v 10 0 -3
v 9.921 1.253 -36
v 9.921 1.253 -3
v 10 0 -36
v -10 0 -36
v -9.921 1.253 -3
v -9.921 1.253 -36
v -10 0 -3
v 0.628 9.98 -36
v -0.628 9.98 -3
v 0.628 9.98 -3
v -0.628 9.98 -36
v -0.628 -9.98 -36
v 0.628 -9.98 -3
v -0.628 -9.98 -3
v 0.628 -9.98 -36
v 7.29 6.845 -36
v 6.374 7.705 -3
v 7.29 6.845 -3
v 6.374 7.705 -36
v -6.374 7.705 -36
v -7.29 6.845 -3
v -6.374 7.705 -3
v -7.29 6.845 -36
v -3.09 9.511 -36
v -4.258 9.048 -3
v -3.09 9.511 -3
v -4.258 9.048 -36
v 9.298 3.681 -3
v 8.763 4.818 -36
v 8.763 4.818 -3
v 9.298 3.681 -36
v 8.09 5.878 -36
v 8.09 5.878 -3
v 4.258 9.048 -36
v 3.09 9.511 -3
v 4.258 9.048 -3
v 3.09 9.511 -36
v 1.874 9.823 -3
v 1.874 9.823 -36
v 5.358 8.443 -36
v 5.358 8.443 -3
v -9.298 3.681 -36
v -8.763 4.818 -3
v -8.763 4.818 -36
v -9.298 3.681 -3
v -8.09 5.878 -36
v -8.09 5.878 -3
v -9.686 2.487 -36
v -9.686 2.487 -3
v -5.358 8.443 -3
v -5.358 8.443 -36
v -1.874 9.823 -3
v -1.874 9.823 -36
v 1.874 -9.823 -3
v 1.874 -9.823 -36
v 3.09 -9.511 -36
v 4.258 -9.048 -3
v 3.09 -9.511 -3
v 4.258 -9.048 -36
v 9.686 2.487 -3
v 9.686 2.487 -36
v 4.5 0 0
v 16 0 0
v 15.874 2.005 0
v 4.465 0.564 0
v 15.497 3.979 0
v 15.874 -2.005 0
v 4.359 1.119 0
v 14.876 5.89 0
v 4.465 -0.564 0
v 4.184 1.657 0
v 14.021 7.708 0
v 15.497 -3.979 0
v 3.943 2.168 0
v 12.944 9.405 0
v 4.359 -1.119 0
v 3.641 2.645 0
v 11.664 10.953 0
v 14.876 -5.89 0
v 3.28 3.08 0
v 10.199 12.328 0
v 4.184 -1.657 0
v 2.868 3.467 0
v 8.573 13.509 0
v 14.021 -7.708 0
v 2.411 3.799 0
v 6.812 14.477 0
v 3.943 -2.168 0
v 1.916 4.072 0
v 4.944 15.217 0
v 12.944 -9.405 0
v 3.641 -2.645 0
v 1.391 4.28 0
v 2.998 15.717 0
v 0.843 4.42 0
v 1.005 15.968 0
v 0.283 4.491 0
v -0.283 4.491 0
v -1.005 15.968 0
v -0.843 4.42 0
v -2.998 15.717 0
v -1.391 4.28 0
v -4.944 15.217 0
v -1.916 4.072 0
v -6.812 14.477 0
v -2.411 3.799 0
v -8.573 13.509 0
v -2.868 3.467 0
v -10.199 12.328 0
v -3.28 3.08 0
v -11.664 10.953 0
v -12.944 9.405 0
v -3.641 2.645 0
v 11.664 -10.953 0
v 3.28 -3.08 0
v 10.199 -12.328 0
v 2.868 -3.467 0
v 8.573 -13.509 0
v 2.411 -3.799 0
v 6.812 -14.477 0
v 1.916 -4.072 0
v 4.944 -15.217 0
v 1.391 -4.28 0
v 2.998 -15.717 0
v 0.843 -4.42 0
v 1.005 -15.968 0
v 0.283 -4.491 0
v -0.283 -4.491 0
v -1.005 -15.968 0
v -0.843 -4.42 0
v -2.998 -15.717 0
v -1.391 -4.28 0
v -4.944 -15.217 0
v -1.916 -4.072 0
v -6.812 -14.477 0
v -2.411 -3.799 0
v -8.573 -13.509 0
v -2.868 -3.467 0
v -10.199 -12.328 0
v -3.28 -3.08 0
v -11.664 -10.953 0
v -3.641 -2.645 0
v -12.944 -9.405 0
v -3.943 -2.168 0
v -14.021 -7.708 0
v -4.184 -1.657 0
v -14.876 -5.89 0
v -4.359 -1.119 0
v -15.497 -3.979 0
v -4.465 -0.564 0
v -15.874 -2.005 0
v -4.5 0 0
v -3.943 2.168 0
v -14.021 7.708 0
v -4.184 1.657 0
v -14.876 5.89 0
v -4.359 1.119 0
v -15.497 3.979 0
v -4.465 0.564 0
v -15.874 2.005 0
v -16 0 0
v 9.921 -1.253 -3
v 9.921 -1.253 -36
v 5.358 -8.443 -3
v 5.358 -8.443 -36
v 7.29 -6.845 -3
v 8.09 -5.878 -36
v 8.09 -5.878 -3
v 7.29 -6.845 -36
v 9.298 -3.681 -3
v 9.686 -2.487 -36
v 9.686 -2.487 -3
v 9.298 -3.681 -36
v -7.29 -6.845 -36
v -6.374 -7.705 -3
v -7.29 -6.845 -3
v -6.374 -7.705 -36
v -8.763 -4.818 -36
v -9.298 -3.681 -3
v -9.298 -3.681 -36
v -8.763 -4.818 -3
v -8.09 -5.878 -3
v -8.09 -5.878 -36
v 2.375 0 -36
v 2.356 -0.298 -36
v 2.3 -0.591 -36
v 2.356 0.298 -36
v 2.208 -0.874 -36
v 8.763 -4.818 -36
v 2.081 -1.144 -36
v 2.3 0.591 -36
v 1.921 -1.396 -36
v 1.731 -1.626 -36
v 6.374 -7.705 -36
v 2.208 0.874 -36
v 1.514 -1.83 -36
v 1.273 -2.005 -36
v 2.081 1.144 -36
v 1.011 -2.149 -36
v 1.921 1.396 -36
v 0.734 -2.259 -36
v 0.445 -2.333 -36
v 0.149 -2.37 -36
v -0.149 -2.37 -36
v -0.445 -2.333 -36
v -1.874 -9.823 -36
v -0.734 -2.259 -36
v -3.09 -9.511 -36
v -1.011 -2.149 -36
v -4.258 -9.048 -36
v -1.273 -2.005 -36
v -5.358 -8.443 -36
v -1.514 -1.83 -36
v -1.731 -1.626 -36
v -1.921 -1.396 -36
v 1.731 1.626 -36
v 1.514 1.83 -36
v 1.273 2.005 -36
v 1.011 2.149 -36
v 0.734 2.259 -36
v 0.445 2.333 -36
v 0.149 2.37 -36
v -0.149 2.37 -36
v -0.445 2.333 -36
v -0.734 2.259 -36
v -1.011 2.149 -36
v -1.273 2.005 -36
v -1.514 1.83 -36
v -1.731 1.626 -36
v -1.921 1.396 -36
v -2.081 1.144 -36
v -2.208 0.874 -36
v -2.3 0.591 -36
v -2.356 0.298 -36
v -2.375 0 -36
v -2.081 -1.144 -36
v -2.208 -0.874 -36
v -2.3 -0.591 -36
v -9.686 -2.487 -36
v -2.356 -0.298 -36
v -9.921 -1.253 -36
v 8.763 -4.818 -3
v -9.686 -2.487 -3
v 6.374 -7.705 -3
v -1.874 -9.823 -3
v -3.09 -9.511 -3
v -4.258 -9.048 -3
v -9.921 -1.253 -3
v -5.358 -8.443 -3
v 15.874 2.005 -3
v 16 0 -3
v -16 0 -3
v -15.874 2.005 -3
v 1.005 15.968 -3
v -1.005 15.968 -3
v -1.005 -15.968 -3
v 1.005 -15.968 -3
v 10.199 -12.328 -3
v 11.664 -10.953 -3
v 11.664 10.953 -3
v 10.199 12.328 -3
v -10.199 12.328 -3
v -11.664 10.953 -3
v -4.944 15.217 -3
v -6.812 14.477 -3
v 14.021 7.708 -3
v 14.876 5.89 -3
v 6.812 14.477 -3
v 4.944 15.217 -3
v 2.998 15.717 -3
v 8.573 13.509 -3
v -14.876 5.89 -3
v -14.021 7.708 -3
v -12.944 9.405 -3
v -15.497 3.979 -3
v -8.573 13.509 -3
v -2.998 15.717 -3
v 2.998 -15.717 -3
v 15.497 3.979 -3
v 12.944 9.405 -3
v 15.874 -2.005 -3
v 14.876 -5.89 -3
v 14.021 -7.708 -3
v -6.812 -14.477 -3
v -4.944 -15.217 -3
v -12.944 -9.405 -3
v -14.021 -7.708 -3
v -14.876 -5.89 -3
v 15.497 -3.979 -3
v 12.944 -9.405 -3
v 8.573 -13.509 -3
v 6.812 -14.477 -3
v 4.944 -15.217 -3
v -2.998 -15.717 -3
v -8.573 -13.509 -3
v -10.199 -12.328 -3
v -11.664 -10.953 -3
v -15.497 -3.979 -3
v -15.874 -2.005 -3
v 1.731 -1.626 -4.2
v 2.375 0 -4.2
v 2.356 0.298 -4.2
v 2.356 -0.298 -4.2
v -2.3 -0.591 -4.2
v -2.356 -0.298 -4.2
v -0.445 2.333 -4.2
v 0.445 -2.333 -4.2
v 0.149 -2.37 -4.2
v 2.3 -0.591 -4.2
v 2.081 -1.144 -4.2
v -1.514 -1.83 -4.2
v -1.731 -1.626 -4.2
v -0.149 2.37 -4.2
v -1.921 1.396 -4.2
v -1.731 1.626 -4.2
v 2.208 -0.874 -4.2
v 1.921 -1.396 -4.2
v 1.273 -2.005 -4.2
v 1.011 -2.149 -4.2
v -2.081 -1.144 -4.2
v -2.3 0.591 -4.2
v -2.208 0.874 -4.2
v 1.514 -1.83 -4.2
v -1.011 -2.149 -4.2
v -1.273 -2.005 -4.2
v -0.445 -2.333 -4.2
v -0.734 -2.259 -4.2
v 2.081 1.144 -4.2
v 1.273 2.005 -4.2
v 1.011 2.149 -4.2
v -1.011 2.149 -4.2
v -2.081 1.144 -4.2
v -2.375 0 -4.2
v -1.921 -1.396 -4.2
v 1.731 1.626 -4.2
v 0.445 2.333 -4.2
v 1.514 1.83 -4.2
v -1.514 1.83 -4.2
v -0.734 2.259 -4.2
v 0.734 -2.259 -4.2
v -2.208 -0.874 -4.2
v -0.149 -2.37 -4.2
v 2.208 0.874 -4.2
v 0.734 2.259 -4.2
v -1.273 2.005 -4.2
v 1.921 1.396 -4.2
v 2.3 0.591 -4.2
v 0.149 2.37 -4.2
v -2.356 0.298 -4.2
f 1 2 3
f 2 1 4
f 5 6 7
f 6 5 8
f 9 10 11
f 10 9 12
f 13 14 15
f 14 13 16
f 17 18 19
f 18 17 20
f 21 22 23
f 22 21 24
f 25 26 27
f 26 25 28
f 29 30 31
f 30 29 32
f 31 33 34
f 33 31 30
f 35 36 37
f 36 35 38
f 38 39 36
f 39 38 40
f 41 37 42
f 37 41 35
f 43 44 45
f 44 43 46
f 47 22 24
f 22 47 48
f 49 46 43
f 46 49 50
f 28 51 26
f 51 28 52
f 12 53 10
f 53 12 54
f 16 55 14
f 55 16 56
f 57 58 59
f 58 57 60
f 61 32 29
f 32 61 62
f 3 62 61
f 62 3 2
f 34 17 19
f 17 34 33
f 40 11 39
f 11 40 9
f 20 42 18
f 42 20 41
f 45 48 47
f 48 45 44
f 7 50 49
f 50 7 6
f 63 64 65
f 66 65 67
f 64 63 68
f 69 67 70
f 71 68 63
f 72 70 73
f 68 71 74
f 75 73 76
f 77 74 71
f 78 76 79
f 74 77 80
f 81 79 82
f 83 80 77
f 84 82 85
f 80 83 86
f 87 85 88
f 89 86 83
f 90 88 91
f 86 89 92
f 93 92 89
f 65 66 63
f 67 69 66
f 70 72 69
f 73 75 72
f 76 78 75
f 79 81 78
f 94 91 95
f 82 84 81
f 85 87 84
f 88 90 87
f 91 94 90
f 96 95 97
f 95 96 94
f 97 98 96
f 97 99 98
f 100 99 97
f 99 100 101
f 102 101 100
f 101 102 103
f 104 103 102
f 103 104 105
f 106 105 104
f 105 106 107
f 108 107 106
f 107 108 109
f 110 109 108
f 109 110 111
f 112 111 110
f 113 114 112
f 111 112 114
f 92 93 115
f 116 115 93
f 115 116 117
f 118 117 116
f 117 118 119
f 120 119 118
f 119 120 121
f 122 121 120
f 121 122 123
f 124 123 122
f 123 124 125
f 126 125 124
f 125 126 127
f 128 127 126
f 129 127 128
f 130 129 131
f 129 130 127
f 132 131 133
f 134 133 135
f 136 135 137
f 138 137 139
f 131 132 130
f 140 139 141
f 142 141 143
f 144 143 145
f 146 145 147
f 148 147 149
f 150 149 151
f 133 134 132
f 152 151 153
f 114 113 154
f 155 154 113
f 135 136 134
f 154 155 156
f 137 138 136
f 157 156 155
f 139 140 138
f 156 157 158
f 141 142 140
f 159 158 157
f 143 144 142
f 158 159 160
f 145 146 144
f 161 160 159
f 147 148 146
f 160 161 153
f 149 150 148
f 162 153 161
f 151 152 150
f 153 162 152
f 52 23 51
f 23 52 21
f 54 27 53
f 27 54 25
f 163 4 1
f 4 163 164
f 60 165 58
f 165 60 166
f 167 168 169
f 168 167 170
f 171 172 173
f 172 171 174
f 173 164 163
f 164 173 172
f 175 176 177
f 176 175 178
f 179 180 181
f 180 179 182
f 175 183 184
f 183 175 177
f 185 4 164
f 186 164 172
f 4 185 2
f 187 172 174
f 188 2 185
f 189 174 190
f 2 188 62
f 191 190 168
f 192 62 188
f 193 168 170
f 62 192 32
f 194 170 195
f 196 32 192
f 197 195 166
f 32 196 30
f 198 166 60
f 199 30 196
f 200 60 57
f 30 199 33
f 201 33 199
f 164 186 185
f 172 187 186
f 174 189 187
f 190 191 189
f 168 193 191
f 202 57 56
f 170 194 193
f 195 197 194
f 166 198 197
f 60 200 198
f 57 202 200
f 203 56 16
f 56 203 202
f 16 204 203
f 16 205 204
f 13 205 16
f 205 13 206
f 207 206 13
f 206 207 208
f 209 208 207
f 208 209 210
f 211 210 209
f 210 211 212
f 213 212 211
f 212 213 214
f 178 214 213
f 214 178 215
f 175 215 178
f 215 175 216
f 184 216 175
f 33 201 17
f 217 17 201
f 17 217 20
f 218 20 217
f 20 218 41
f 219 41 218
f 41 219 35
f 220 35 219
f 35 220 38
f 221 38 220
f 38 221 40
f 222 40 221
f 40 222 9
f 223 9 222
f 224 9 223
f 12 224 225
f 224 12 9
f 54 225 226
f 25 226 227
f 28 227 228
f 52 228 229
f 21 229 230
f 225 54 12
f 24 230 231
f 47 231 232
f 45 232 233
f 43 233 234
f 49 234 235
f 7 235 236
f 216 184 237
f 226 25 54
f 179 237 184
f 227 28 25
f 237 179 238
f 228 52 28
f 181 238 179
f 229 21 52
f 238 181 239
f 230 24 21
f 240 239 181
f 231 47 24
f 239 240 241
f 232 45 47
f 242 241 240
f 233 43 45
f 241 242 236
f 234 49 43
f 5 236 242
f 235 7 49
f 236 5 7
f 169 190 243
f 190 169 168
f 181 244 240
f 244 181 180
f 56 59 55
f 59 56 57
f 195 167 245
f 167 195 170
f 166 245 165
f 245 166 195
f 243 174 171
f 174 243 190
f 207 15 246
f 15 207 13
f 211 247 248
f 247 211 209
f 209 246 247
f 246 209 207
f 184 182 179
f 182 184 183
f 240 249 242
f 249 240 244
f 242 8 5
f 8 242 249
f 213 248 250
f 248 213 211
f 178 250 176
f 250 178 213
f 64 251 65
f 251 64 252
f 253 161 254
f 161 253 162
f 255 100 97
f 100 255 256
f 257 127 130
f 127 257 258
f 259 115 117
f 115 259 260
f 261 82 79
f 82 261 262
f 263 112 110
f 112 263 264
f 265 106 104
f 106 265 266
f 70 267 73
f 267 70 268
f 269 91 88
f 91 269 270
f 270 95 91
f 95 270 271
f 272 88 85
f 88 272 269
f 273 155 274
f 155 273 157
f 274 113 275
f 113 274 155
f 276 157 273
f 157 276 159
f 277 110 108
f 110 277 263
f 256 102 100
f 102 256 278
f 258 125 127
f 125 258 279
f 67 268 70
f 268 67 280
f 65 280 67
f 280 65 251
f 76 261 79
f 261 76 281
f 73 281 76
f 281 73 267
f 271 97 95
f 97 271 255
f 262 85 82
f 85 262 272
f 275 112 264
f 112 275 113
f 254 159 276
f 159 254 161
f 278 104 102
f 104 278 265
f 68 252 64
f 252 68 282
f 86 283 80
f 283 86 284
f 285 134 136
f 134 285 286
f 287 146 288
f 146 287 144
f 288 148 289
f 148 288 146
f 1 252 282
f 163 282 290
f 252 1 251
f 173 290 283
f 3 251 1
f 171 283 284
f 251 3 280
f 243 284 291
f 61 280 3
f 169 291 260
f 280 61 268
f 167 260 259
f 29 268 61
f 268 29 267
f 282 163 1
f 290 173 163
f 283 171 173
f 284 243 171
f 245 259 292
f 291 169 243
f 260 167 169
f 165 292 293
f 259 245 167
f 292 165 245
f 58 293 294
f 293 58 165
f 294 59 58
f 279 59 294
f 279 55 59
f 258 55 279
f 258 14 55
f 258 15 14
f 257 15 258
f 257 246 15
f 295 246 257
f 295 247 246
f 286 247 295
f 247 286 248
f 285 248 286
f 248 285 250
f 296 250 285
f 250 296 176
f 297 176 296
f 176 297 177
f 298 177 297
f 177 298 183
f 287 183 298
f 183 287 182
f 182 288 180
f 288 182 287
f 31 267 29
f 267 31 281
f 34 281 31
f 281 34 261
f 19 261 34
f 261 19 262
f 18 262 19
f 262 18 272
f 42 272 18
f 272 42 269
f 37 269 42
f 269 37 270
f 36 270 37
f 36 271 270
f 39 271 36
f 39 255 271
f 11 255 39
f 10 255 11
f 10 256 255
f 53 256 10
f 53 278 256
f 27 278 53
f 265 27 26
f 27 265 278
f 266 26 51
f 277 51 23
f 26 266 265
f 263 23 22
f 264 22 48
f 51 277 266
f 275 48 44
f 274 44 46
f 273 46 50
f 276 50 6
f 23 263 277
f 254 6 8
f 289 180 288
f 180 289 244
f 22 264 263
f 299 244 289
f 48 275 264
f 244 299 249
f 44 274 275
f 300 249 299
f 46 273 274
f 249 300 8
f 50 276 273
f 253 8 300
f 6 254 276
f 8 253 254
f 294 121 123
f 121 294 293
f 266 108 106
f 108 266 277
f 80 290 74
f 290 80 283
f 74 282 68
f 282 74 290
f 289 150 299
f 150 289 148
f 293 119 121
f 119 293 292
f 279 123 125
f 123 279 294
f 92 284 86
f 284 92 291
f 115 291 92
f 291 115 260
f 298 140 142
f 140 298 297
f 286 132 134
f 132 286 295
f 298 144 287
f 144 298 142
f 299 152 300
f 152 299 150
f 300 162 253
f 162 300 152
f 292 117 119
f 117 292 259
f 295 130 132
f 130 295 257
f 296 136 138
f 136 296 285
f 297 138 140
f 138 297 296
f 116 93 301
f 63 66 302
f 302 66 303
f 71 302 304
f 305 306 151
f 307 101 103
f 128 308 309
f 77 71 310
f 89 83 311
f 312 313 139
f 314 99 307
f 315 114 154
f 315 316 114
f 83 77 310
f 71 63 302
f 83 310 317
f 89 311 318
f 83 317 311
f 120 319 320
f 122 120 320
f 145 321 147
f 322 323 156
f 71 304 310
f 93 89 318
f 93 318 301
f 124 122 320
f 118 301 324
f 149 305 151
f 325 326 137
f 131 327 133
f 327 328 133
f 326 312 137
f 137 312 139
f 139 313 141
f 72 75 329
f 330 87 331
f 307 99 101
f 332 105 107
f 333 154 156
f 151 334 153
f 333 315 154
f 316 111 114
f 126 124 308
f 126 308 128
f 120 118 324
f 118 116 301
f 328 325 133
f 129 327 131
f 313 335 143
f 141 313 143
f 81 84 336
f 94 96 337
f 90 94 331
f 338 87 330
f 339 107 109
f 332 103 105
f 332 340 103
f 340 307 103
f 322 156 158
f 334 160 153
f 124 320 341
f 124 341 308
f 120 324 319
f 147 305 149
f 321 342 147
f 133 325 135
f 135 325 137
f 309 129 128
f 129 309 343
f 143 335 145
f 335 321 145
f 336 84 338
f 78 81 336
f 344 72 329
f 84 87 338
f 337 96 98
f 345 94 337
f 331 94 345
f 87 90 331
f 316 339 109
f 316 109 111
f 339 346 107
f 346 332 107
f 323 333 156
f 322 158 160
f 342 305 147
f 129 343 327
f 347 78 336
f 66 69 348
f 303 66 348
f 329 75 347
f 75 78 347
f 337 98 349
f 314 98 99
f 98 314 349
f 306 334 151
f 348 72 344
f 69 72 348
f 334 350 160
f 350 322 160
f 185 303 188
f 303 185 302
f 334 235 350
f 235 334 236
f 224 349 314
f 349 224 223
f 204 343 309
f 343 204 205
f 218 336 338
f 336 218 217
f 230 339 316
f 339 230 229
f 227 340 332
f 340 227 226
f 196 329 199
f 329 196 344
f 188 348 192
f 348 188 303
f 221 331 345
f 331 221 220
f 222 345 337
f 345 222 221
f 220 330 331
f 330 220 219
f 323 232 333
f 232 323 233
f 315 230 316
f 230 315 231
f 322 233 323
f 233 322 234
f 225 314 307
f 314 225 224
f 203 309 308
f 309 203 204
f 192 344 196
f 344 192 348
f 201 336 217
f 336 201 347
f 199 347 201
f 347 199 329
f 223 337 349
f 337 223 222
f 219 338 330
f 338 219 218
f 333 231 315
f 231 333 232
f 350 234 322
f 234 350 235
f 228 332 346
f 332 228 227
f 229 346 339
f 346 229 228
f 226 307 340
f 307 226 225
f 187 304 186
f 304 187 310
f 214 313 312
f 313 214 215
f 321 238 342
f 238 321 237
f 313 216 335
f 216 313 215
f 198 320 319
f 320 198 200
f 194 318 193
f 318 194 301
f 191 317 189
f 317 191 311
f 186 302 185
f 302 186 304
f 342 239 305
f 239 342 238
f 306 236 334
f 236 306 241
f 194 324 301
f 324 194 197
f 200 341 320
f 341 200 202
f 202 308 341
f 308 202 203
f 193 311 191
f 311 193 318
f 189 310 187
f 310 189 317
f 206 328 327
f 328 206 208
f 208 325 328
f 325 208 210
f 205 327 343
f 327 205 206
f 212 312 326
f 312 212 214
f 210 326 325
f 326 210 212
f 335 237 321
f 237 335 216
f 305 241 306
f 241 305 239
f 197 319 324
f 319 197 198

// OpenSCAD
$fn = 50;


difference() {
	union() {
		translate(v = [0, 0, -36.0000000000]) {
			cylinder(h = 36, r = 10.0000000000);
		}
		translate(v = [0, 0, -3.0000000000]) {
			cylinder(h = 3, r = 16.0000000000);
		}
	}
	union() {
		translate(v = [0, 0, 0]) {
			rotate(a = [0, 0, 0]) {
				difference() {
					union() {
						#translate(v = [0, 0, -36.0000000000]) {
							cylinder(h = 36, r = 2.2500000000);
						}
						#translate(v = [0, 0, -4.2000000000]) {
							cylinder(h = 4.2000000000, r1 = 2.3750000000, r2 = 4.5000000000);
						}
						#translate(v = [0, 0, -36.0000000000]) {
							cylinder(h = 36, r = 2.3750000000);
						}
						#translate(v = [0, 0, -36.0000000000]) {
							cylinder(h = 36, r = 2.2500000000);
						}
					}
					union();
				}
			}
		}
	}
}
